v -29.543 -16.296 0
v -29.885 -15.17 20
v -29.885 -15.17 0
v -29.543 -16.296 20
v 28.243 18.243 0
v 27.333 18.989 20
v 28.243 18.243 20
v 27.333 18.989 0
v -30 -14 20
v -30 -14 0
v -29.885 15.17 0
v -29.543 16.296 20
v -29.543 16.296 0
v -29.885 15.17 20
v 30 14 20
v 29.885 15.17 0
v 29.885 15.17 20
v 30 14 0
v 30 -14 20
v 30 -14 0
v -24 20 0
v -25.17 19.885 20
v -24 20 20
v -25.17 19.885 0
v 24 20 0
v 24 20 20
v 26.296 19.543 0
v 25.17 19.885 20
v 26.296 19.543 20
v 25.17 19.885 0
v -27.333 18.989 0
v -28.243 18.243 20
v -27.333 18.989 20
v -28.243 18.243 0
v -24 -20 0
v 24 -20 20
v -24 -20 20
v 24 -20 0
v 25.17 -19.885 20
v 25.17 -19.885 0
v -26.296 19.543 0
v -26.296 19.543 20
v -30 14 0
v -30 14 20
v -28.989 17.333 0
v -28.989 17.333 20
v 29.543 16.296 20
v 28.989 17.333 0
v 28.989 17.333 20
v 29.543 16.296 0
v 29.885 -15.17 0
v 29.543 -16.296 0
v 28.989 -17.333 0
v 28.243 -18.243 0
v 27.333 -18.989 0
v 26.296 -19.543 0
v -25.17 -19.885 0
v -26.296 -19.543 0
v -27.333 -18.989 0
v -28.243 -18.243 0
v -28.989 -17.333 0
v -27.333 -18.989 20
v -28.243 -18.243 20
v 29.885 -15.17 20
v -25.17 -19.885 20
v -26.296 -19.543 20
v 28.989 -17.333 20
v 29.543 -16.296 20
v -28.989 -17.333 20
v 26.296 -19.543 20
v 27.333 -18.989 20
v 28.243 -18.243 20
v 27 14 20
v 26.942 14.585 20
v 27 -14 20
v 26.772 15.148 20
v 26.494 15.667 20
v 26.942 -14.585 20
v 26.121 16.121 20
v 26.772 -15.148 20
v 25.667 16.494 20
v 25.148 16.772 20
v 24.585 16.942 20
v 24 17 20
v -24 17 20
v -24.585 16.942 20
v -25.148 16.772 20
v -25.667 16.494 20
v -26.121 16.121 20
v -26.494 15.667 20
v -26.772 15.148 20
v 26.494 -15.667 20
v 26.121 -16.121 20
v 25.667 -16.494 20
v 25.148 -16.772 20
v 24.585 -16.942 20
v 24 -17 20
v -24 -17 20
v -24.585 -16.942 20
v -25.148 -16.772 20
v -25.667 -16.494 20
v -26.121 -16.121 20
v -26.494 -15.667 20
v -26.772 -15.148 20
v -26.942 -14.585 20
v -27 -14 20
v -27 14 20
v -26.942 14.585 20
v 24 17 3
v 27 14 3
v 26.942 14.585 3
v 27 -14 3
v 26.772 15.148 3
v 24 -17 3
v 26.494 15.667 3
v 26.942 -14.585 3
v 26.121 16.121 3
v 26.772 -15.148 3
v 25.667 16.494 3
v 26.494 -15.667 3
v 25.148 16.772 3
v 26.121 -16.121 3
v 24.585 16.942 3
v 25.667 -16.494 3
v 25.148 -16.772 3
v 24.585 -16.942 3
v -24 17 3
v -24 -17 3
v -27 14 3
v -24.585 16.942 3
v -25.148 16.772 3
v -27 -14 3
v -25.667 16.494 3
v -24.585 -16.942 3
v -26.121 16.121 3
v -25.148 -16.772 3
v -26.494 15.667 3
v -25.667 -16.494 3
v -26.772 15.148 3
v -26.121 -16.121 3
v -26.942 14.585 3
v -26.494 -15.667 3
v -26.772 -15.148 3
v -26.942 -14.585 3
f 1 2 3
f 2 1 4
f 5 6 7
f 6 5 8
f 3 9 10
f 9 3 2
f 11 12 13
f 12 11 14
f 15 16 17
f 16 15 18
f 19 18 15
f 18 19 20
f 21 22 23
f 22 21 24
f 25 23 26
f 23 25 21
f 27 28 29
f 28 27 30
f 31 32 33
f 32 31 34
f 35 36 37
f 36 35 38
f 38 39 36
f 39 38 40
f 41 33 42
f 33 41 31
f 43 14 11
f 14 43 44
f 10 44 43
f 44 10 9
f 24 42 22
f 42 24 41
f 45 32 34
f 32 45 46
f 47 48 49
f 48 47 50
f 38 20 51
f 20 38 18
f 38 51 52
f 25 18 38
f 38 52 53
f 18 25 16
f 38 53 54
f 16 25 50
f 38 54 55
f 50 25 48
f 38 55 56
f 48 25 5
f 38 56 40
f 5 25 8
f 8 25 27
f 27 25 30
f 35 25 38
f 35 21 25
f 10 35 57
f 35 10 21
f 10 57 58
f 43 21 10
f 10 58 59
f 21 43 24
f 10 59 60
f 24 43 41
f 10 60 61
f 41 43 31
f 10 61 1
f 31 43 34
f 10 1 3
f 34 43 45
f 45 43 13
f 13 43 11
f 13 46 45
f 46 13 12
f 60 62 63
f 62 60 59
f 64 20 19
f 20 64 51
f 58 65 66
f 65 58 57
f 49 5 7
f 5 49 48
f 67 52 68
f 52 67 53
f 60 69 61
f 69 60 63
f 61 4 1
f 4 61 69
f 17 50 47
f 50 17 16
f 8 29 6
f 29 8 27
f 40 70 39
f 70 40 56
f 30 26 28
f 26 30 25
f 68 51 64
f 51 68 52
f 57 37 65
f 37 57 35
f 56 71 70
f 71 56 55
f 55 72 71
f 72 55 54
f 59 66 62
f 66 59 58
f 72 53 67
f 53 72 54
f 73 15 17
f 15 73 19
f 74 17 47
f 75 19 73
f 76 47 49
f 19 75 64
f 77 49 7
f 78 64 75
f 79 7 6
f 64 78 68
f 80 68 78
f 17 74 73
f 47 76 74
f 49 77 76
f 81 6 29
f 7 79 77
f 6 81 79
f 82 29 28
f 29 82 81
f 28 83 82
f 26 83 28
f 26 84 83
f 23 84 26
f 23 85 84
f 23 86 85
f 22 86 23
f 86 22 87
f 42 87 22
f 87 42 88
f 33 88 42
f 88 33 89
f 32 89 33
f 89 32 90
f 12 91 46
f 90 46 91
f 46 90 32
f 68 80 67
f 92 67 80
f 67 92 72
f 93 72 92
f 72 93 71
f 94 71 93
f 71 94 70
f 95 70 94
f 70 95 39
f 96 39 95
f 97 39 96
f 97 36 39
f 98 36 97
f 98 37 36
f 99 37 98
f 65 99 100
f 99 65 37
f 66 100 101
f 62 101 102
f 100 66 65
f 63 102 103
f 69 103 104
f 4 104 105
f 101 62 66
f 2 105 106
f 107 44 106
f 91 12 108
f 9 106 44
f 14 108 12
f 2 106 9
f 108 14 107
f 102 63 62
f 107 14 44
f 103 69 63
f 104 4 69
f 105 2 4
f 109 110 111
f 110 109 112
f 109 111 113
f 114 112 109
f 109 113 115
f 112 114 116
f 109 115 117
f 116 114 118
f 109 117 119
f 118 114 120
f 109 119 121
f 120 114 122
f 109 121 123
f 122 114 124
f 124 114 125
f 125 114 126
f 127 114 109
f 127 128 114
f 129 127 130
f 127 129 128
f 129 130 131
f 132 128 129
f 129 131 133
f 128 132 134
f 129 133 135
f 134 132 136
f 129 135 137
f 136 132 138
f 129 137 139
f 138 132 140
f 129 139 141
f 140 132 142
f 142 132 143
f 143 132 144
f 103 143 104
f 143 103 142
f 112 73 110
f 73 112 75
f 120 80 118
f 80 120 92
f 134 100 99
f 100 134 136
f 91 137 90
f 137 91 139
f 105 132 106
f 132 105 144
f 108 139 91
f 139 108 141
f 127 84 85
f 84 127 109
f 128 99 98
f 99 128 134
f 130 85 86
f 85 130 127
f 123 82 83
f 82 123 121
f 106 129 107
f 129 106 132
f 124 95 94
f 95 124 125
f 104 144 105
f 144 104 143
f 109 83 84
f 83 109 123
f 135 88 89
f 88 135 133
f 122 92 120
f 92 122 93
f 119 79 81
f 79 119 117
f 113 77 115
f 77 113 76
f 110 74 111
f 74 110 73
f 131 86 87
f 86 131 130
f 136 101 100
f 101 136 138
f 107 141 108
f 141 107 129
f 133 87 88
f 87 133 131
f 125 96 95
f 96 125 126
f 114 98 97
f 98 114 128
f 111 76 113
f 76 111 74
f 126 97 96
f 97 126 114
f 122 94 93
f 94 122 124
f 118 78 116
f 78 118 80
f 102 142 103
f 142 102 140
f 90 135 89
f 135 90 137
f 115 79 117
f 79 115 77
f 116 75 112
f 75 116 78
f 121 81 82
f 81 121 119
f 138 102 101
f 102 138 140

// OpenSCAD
/* doodle-meta {"version":1,"parameters":{"overall_length":{"label":"Overall Length","description":"Changes the tray length along X","unit":"mm","feature":"body_length"},"overall_width":{"label":"Overall Width","description":"Changes the tray width along Y","unit":"mm","feature":"body_width"},"overall_height":{"label":"Overall Height","description":"Changes the tray height along Z","unit":"mm","feature":"body_height"},"wall_thickness":{"label":"Wall Thickness","description":"Changes the uniform wall and floor thickness","unit":"mm","feature":"wall_thickness"},"corner_radius":{"label":"Corner Radius","description":"Changes the outer corner radius","unit":"mm","feature":"corner_radius"}},"features":{"body_length":{"kind":"dimension","axis":"x","label":"Overall Length"},"body_width":{"kind":"dimension","axis":"y","label":"Overall Width"},"body_height":{"kind":"dimension","axis":"z","label":"Overall Height"},"wall_thickness":{"kind":"region","label":"Wall Thickness","min":[0,0,0],"max":[{"parameter":"overall_length","scale":0.5,"offset":0},{"parameter":"overall_width","scale":0.5,"offset":0},{"parameter":"overall_height","scale":1,"offset":0}]},"corner_radius":{"kind":"region","label":"Corner Radius","min":[{"parameter":"overall_length","scale":0.5,"offset":0},{"parameter":"overall_width","scale":0.5,"offset":0},0],"max":[{"parameter":"overall_length","scale":1,"offset":0},{"parameter":"overall_width","scale":1,"offset":0},{"parameter":"overall_height","scale":1,"offset":0}]}}} */

// Parameters
overall_length = 60;
overall_width = 40;
overall_height = 20;
wall_thickness = 3;
corner_radius = 6;

// Derived dimensions
inner_length = overall_length - 2 * wall_thickness;
inner_width = overall_width - 2 * wall_thickness;
inner_radius = corner_radius - wall_thickness;
cavity_height = overall_height - wall_thickness;

// Module for rounded rectangle (centered at origin in XY)
module rounded_rect(l, w, r) {
    hull() {
        translate([l/2 - r, w/2 - r, 0]) circle(r=r, $fn=32);
        translate([-l/2 + r, w/2 - r, 0]) circle(r=r, $fn=32);
        translate([-l/2 + r, -w/2 + r, 0]) circle(r=r, $fn=32);
        translate([l/2 - r, -w/2 + r, 0]) circle(r=r, $fn=32);
    }
}

// Main Design
difference() {
    // Outer Body
    linear_extrude(height=overall_height) {
        rounded_rect(overall_length, overall_width, corner_radius);
    }
    
    // Inner Cavity (Subtractive)
    translate([0, 0, wall_thickness]) {
        linear_extrude(height=overall_height + 1) { // +1 to ensure clean cut through top
            rounded_rect(inner_length, inner_width, inner_radius);
        }
    }
}
